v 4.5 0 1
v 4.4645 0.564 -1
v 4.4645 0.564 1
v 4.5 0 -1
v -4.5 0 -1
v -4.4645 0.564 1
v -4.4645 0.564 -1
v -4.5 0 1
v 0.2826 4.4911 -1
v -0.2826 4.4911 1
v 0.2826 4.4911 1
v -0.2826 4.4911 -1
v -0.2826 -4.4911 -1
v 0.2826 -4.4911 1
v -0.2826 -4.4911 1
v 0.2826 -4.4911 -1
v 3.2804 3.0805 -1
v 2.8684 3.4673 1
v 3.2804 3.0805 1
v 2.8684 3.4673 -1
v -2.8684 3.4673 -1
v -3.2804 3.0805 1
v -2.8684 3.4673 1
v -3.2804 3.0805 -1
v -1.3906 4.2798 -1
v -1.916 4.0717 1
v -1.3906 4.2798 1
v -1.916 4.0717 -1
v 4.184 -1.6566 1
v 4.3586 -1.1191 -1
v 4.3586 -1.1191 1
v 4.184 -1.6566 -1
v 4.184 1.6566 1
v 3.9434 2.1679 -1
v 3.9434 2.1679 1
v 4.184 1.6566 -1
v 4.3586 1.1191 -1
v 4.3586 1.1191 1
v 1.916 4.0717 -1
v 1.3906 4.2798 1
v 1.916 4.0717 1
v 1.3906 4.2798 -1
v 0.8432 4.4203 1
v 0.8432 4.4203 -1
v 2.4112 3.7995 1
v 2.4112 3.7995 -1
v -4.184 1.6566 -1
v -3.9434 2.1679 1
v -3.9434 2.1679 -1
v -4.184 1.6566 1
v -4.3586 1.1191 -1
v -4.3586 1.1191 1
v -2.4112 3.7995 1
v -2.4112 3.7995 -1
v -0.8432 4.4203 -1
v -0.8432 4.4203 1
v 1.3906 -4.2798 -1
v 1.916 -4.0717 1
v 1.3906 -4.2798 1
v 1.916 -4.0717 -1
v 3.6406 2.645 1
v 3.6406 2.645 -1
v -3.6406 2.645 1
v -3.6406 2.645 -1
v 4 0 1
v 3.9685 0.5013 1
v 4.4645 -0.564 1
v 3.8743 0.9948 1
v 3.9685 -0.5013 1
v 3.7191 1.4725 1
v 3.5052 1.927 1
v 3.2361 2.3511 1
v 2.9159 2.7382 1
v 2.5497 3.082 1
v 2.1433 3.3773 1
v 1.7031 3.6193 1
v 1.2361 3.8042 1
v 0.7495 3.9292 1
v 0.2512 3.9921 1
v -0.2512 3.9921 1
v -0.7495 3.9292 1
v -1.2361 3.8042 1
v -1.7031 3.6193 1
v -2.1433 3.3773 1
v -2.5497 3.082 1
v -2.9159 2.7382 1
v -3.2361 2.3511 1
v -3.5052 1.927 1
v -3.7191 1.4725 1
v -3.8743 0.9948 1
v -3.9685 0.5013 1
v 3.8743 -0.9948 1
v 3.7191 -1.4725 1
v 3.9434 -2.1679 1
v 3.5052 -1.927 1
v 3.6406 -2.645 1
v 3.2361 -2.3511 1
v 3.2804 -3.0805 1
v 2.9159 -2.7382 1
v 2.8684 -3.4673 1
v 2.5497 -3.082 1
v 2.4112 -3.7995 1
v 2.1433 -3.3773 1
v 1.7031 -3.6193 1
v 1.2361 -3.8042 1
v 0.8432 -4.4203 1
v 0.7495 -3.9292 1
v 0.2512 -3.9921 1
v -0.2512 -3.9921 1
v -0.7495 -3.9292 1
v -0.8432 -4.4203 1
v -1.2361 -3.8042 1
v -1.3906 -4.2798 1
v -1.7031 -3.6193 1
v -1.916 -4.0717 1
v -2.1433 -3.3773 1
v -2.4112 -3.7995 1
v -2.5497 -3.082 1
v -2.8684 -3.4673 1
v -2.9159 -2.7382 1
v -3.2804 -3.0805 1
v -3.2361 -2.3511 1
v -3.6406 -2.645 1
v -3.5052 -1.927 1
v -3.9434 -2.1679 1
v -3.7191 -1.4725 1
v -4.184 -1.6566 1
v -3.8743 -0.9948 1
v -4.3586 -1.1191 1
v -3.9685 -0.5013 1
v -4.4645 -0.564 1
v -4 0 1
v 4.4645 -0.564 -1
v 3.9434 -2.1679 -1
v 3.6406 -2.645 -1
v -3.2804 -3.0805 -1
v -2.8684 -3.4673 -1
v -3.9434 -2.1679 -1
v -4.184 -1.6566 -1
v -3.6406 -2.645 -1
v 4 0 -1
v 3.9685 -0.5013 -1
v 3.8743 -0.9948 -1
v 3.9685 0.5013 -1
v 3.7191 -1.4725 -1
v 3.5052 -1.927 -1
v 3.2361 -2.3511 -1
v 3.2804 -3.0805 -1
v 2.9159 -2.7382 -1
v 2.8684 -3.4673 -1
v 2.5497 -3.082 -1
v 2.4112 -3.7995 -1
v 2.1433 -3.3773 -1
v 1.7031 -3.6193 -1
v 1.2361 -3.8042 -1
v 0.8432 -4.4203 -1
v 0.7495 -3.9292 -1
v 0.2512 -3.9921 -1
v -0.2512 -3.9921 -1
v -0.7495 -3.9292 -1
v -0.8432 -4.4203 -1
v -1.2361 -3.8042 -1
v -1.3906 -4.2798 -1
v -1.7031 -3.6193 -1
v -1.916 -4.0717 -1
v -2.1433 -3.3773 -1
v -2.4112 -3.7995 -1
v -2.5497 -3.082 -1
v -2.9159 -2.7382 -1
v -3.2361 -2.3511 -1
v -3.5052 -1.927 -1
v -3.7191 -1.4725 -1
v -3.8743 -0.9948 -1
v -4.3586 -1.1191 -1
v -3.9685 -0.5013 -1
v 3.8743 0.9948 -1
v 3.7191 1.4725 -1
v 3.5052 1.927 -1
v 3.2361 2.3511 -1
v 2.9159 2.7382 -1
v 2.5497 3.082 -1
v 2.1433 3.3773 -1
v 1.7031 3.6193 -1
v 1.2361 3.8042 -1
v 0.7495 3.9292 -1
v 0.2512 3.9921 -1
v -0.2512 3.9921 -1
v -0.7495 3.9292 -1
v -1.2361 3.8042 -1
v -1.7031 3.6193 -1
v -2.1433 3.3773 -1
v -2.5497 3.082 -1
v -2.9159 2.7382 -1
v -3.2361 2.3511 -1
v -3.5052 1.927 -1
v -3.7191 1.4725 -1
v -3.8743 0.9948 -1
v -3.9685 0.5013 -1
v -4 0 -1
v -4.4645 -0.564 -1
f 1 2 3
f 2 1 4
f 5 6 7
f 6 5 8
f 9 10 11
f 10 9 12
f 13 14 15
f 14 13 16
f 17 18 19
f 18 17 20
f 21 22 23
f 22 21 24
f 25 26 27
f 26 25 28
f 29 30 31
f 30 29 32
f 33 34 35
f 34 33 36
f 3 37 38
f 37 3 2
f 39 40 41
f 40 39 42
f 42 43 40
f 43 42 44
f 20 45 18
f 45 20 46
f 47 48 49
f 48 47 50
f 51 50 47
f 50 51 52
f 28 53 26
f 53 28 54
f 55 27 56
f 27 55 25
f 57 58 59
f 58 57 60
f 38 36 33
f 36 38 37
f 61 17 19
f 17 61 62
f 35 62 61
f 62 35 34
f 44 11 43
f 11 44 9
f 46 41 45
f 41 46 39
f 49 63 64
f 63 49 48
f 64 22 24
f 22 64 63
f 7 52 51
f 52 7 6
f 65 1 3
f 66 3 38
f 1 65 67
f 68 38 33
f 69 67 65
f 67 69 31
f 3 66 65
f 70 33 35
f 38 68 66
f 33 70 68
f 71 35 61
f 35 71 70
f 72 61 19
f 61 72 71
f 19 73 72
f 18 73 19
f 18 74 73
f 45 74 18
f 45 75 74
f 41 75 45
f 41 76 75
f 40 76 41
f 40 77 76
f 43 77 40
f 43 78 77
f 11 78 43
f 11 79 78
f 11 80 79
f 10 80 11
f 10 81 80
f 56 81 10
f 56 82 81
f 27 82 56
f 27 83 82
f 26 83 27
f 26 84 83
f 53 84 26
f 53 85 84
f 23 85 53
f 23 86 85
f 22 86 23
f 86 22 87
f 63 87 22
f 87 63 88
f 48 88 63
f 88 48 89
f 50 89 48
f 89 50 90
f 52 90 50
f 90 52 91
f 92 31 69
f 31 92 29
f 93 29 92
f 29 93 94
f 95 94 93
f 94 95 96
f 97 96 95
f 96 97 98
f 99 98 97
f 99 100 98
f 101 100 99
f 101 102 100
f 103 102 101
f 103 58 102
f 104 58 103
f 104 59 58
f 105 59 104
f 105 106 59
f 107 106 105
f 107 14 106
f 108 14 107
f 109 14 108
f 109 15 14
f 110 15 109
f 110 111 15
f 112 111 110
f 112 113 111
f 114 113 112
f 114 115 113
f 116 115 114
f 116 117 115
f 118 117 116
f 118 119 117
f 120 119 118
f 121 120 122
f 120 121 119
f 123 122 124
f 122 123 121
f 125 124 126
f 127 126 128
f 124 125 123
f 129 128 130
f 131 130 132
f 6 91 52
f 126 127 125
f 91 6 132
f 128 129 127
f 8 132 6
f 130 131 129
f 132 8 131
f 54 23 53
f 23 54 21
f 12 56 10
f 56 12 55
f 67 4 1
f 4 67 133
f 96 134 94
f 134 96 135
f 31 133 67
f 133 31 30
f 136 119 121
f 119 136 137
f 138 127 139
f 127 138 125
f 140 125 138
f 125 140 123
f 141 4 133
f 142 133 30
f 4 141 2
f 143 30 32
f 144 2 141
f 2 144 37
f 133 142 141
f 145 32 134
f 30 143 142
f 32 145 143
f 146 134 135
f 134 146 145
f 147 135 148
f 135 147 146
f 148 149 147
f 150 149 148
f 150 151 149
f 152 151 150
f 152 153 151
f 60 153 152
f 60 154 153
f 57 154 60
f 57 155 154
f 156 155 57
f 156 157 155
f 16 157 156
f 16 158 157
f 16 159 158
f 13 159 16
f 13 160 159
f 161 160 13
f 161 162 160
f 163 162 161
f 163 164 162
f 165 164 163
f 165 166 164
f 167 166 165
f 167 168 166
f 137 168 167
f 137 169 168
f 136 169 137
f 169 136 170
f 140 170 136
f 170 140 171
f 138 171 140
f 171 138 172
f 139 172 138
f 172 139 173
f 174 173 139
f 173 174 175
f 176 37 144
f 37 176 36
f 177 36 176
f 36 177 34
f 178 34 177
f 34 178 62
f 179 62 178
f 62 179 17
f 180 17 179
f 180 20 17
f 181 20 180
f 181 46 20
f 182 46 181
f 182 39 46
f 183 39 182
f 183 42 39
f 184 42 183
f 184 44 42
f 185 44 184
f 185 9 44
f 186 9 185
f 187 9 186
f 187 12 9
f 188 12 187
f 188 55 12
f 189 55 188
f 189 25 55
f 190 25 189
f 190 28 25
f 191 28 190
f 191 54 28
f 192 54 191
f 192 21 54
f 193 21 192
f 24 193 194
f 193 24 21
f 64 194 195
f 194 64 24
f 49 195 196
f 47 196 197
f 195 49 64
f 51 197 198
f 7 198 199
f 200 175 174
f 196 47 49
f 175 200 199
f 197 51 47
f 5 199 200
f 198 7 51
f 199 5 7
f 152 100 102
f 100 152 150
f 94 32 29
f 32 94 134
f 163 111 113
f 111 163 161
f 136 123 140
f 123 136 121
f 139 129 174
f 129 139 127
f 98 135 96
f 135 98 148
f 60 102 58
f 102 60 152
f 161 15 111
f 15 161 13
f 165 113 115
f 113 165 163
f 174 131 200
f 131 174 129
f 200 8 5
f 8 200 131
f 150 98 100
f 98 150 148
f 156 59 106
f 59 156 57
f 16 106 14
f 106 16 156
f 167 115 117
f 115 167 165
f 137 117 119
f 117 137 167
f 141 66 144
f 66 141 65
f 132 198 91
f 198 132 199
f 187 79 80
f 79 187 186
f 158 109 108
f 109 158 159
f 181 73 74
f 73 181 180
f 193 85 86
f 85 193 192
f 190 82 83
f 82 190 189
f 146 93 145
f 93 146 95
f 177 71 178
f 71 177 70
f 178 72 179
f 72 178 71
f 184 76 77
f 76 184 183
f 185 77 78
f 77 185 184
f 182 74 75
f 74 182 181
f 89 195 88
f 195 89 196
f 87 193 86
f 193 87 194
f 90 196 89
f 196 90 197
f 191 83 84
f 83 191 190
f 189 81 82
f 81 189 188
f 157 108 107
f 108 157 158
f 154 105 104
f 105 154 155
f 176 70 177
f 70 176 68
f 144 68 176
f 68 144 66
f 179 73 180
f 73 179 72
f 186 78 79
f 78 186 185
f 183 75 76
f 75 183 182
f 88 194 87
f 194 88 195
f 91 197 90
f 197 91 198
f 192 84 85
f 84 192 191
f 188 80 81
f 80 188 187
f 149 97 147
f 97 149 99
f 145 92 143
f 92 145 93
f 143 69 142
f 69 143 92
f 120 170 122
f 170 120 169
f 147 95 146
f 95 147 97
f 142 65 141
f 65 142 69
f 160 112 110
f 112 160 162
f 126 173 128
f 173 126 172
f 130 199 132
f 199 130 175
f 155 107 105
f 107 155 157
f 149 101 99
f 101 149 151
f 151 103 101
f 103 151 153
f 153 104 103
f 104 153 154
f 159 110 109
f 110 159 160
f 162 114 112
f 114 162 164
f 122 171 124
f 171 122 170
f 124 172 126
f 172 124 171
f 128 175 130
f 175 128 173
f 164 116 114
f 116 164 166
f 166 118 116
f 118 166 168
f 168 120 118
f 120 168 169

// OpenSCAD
$fn = 50;


difference() {
	union() {
		translate(v = [0, 0, -1.0000000000]) {
			cylinder(h = 2, r = 4.5000000000);
		}
	}
	union() {
		translate(v = [0, 0, -100.0000000000]) {
			cylinder(h = 200, r = 4);
		}
	}
}
